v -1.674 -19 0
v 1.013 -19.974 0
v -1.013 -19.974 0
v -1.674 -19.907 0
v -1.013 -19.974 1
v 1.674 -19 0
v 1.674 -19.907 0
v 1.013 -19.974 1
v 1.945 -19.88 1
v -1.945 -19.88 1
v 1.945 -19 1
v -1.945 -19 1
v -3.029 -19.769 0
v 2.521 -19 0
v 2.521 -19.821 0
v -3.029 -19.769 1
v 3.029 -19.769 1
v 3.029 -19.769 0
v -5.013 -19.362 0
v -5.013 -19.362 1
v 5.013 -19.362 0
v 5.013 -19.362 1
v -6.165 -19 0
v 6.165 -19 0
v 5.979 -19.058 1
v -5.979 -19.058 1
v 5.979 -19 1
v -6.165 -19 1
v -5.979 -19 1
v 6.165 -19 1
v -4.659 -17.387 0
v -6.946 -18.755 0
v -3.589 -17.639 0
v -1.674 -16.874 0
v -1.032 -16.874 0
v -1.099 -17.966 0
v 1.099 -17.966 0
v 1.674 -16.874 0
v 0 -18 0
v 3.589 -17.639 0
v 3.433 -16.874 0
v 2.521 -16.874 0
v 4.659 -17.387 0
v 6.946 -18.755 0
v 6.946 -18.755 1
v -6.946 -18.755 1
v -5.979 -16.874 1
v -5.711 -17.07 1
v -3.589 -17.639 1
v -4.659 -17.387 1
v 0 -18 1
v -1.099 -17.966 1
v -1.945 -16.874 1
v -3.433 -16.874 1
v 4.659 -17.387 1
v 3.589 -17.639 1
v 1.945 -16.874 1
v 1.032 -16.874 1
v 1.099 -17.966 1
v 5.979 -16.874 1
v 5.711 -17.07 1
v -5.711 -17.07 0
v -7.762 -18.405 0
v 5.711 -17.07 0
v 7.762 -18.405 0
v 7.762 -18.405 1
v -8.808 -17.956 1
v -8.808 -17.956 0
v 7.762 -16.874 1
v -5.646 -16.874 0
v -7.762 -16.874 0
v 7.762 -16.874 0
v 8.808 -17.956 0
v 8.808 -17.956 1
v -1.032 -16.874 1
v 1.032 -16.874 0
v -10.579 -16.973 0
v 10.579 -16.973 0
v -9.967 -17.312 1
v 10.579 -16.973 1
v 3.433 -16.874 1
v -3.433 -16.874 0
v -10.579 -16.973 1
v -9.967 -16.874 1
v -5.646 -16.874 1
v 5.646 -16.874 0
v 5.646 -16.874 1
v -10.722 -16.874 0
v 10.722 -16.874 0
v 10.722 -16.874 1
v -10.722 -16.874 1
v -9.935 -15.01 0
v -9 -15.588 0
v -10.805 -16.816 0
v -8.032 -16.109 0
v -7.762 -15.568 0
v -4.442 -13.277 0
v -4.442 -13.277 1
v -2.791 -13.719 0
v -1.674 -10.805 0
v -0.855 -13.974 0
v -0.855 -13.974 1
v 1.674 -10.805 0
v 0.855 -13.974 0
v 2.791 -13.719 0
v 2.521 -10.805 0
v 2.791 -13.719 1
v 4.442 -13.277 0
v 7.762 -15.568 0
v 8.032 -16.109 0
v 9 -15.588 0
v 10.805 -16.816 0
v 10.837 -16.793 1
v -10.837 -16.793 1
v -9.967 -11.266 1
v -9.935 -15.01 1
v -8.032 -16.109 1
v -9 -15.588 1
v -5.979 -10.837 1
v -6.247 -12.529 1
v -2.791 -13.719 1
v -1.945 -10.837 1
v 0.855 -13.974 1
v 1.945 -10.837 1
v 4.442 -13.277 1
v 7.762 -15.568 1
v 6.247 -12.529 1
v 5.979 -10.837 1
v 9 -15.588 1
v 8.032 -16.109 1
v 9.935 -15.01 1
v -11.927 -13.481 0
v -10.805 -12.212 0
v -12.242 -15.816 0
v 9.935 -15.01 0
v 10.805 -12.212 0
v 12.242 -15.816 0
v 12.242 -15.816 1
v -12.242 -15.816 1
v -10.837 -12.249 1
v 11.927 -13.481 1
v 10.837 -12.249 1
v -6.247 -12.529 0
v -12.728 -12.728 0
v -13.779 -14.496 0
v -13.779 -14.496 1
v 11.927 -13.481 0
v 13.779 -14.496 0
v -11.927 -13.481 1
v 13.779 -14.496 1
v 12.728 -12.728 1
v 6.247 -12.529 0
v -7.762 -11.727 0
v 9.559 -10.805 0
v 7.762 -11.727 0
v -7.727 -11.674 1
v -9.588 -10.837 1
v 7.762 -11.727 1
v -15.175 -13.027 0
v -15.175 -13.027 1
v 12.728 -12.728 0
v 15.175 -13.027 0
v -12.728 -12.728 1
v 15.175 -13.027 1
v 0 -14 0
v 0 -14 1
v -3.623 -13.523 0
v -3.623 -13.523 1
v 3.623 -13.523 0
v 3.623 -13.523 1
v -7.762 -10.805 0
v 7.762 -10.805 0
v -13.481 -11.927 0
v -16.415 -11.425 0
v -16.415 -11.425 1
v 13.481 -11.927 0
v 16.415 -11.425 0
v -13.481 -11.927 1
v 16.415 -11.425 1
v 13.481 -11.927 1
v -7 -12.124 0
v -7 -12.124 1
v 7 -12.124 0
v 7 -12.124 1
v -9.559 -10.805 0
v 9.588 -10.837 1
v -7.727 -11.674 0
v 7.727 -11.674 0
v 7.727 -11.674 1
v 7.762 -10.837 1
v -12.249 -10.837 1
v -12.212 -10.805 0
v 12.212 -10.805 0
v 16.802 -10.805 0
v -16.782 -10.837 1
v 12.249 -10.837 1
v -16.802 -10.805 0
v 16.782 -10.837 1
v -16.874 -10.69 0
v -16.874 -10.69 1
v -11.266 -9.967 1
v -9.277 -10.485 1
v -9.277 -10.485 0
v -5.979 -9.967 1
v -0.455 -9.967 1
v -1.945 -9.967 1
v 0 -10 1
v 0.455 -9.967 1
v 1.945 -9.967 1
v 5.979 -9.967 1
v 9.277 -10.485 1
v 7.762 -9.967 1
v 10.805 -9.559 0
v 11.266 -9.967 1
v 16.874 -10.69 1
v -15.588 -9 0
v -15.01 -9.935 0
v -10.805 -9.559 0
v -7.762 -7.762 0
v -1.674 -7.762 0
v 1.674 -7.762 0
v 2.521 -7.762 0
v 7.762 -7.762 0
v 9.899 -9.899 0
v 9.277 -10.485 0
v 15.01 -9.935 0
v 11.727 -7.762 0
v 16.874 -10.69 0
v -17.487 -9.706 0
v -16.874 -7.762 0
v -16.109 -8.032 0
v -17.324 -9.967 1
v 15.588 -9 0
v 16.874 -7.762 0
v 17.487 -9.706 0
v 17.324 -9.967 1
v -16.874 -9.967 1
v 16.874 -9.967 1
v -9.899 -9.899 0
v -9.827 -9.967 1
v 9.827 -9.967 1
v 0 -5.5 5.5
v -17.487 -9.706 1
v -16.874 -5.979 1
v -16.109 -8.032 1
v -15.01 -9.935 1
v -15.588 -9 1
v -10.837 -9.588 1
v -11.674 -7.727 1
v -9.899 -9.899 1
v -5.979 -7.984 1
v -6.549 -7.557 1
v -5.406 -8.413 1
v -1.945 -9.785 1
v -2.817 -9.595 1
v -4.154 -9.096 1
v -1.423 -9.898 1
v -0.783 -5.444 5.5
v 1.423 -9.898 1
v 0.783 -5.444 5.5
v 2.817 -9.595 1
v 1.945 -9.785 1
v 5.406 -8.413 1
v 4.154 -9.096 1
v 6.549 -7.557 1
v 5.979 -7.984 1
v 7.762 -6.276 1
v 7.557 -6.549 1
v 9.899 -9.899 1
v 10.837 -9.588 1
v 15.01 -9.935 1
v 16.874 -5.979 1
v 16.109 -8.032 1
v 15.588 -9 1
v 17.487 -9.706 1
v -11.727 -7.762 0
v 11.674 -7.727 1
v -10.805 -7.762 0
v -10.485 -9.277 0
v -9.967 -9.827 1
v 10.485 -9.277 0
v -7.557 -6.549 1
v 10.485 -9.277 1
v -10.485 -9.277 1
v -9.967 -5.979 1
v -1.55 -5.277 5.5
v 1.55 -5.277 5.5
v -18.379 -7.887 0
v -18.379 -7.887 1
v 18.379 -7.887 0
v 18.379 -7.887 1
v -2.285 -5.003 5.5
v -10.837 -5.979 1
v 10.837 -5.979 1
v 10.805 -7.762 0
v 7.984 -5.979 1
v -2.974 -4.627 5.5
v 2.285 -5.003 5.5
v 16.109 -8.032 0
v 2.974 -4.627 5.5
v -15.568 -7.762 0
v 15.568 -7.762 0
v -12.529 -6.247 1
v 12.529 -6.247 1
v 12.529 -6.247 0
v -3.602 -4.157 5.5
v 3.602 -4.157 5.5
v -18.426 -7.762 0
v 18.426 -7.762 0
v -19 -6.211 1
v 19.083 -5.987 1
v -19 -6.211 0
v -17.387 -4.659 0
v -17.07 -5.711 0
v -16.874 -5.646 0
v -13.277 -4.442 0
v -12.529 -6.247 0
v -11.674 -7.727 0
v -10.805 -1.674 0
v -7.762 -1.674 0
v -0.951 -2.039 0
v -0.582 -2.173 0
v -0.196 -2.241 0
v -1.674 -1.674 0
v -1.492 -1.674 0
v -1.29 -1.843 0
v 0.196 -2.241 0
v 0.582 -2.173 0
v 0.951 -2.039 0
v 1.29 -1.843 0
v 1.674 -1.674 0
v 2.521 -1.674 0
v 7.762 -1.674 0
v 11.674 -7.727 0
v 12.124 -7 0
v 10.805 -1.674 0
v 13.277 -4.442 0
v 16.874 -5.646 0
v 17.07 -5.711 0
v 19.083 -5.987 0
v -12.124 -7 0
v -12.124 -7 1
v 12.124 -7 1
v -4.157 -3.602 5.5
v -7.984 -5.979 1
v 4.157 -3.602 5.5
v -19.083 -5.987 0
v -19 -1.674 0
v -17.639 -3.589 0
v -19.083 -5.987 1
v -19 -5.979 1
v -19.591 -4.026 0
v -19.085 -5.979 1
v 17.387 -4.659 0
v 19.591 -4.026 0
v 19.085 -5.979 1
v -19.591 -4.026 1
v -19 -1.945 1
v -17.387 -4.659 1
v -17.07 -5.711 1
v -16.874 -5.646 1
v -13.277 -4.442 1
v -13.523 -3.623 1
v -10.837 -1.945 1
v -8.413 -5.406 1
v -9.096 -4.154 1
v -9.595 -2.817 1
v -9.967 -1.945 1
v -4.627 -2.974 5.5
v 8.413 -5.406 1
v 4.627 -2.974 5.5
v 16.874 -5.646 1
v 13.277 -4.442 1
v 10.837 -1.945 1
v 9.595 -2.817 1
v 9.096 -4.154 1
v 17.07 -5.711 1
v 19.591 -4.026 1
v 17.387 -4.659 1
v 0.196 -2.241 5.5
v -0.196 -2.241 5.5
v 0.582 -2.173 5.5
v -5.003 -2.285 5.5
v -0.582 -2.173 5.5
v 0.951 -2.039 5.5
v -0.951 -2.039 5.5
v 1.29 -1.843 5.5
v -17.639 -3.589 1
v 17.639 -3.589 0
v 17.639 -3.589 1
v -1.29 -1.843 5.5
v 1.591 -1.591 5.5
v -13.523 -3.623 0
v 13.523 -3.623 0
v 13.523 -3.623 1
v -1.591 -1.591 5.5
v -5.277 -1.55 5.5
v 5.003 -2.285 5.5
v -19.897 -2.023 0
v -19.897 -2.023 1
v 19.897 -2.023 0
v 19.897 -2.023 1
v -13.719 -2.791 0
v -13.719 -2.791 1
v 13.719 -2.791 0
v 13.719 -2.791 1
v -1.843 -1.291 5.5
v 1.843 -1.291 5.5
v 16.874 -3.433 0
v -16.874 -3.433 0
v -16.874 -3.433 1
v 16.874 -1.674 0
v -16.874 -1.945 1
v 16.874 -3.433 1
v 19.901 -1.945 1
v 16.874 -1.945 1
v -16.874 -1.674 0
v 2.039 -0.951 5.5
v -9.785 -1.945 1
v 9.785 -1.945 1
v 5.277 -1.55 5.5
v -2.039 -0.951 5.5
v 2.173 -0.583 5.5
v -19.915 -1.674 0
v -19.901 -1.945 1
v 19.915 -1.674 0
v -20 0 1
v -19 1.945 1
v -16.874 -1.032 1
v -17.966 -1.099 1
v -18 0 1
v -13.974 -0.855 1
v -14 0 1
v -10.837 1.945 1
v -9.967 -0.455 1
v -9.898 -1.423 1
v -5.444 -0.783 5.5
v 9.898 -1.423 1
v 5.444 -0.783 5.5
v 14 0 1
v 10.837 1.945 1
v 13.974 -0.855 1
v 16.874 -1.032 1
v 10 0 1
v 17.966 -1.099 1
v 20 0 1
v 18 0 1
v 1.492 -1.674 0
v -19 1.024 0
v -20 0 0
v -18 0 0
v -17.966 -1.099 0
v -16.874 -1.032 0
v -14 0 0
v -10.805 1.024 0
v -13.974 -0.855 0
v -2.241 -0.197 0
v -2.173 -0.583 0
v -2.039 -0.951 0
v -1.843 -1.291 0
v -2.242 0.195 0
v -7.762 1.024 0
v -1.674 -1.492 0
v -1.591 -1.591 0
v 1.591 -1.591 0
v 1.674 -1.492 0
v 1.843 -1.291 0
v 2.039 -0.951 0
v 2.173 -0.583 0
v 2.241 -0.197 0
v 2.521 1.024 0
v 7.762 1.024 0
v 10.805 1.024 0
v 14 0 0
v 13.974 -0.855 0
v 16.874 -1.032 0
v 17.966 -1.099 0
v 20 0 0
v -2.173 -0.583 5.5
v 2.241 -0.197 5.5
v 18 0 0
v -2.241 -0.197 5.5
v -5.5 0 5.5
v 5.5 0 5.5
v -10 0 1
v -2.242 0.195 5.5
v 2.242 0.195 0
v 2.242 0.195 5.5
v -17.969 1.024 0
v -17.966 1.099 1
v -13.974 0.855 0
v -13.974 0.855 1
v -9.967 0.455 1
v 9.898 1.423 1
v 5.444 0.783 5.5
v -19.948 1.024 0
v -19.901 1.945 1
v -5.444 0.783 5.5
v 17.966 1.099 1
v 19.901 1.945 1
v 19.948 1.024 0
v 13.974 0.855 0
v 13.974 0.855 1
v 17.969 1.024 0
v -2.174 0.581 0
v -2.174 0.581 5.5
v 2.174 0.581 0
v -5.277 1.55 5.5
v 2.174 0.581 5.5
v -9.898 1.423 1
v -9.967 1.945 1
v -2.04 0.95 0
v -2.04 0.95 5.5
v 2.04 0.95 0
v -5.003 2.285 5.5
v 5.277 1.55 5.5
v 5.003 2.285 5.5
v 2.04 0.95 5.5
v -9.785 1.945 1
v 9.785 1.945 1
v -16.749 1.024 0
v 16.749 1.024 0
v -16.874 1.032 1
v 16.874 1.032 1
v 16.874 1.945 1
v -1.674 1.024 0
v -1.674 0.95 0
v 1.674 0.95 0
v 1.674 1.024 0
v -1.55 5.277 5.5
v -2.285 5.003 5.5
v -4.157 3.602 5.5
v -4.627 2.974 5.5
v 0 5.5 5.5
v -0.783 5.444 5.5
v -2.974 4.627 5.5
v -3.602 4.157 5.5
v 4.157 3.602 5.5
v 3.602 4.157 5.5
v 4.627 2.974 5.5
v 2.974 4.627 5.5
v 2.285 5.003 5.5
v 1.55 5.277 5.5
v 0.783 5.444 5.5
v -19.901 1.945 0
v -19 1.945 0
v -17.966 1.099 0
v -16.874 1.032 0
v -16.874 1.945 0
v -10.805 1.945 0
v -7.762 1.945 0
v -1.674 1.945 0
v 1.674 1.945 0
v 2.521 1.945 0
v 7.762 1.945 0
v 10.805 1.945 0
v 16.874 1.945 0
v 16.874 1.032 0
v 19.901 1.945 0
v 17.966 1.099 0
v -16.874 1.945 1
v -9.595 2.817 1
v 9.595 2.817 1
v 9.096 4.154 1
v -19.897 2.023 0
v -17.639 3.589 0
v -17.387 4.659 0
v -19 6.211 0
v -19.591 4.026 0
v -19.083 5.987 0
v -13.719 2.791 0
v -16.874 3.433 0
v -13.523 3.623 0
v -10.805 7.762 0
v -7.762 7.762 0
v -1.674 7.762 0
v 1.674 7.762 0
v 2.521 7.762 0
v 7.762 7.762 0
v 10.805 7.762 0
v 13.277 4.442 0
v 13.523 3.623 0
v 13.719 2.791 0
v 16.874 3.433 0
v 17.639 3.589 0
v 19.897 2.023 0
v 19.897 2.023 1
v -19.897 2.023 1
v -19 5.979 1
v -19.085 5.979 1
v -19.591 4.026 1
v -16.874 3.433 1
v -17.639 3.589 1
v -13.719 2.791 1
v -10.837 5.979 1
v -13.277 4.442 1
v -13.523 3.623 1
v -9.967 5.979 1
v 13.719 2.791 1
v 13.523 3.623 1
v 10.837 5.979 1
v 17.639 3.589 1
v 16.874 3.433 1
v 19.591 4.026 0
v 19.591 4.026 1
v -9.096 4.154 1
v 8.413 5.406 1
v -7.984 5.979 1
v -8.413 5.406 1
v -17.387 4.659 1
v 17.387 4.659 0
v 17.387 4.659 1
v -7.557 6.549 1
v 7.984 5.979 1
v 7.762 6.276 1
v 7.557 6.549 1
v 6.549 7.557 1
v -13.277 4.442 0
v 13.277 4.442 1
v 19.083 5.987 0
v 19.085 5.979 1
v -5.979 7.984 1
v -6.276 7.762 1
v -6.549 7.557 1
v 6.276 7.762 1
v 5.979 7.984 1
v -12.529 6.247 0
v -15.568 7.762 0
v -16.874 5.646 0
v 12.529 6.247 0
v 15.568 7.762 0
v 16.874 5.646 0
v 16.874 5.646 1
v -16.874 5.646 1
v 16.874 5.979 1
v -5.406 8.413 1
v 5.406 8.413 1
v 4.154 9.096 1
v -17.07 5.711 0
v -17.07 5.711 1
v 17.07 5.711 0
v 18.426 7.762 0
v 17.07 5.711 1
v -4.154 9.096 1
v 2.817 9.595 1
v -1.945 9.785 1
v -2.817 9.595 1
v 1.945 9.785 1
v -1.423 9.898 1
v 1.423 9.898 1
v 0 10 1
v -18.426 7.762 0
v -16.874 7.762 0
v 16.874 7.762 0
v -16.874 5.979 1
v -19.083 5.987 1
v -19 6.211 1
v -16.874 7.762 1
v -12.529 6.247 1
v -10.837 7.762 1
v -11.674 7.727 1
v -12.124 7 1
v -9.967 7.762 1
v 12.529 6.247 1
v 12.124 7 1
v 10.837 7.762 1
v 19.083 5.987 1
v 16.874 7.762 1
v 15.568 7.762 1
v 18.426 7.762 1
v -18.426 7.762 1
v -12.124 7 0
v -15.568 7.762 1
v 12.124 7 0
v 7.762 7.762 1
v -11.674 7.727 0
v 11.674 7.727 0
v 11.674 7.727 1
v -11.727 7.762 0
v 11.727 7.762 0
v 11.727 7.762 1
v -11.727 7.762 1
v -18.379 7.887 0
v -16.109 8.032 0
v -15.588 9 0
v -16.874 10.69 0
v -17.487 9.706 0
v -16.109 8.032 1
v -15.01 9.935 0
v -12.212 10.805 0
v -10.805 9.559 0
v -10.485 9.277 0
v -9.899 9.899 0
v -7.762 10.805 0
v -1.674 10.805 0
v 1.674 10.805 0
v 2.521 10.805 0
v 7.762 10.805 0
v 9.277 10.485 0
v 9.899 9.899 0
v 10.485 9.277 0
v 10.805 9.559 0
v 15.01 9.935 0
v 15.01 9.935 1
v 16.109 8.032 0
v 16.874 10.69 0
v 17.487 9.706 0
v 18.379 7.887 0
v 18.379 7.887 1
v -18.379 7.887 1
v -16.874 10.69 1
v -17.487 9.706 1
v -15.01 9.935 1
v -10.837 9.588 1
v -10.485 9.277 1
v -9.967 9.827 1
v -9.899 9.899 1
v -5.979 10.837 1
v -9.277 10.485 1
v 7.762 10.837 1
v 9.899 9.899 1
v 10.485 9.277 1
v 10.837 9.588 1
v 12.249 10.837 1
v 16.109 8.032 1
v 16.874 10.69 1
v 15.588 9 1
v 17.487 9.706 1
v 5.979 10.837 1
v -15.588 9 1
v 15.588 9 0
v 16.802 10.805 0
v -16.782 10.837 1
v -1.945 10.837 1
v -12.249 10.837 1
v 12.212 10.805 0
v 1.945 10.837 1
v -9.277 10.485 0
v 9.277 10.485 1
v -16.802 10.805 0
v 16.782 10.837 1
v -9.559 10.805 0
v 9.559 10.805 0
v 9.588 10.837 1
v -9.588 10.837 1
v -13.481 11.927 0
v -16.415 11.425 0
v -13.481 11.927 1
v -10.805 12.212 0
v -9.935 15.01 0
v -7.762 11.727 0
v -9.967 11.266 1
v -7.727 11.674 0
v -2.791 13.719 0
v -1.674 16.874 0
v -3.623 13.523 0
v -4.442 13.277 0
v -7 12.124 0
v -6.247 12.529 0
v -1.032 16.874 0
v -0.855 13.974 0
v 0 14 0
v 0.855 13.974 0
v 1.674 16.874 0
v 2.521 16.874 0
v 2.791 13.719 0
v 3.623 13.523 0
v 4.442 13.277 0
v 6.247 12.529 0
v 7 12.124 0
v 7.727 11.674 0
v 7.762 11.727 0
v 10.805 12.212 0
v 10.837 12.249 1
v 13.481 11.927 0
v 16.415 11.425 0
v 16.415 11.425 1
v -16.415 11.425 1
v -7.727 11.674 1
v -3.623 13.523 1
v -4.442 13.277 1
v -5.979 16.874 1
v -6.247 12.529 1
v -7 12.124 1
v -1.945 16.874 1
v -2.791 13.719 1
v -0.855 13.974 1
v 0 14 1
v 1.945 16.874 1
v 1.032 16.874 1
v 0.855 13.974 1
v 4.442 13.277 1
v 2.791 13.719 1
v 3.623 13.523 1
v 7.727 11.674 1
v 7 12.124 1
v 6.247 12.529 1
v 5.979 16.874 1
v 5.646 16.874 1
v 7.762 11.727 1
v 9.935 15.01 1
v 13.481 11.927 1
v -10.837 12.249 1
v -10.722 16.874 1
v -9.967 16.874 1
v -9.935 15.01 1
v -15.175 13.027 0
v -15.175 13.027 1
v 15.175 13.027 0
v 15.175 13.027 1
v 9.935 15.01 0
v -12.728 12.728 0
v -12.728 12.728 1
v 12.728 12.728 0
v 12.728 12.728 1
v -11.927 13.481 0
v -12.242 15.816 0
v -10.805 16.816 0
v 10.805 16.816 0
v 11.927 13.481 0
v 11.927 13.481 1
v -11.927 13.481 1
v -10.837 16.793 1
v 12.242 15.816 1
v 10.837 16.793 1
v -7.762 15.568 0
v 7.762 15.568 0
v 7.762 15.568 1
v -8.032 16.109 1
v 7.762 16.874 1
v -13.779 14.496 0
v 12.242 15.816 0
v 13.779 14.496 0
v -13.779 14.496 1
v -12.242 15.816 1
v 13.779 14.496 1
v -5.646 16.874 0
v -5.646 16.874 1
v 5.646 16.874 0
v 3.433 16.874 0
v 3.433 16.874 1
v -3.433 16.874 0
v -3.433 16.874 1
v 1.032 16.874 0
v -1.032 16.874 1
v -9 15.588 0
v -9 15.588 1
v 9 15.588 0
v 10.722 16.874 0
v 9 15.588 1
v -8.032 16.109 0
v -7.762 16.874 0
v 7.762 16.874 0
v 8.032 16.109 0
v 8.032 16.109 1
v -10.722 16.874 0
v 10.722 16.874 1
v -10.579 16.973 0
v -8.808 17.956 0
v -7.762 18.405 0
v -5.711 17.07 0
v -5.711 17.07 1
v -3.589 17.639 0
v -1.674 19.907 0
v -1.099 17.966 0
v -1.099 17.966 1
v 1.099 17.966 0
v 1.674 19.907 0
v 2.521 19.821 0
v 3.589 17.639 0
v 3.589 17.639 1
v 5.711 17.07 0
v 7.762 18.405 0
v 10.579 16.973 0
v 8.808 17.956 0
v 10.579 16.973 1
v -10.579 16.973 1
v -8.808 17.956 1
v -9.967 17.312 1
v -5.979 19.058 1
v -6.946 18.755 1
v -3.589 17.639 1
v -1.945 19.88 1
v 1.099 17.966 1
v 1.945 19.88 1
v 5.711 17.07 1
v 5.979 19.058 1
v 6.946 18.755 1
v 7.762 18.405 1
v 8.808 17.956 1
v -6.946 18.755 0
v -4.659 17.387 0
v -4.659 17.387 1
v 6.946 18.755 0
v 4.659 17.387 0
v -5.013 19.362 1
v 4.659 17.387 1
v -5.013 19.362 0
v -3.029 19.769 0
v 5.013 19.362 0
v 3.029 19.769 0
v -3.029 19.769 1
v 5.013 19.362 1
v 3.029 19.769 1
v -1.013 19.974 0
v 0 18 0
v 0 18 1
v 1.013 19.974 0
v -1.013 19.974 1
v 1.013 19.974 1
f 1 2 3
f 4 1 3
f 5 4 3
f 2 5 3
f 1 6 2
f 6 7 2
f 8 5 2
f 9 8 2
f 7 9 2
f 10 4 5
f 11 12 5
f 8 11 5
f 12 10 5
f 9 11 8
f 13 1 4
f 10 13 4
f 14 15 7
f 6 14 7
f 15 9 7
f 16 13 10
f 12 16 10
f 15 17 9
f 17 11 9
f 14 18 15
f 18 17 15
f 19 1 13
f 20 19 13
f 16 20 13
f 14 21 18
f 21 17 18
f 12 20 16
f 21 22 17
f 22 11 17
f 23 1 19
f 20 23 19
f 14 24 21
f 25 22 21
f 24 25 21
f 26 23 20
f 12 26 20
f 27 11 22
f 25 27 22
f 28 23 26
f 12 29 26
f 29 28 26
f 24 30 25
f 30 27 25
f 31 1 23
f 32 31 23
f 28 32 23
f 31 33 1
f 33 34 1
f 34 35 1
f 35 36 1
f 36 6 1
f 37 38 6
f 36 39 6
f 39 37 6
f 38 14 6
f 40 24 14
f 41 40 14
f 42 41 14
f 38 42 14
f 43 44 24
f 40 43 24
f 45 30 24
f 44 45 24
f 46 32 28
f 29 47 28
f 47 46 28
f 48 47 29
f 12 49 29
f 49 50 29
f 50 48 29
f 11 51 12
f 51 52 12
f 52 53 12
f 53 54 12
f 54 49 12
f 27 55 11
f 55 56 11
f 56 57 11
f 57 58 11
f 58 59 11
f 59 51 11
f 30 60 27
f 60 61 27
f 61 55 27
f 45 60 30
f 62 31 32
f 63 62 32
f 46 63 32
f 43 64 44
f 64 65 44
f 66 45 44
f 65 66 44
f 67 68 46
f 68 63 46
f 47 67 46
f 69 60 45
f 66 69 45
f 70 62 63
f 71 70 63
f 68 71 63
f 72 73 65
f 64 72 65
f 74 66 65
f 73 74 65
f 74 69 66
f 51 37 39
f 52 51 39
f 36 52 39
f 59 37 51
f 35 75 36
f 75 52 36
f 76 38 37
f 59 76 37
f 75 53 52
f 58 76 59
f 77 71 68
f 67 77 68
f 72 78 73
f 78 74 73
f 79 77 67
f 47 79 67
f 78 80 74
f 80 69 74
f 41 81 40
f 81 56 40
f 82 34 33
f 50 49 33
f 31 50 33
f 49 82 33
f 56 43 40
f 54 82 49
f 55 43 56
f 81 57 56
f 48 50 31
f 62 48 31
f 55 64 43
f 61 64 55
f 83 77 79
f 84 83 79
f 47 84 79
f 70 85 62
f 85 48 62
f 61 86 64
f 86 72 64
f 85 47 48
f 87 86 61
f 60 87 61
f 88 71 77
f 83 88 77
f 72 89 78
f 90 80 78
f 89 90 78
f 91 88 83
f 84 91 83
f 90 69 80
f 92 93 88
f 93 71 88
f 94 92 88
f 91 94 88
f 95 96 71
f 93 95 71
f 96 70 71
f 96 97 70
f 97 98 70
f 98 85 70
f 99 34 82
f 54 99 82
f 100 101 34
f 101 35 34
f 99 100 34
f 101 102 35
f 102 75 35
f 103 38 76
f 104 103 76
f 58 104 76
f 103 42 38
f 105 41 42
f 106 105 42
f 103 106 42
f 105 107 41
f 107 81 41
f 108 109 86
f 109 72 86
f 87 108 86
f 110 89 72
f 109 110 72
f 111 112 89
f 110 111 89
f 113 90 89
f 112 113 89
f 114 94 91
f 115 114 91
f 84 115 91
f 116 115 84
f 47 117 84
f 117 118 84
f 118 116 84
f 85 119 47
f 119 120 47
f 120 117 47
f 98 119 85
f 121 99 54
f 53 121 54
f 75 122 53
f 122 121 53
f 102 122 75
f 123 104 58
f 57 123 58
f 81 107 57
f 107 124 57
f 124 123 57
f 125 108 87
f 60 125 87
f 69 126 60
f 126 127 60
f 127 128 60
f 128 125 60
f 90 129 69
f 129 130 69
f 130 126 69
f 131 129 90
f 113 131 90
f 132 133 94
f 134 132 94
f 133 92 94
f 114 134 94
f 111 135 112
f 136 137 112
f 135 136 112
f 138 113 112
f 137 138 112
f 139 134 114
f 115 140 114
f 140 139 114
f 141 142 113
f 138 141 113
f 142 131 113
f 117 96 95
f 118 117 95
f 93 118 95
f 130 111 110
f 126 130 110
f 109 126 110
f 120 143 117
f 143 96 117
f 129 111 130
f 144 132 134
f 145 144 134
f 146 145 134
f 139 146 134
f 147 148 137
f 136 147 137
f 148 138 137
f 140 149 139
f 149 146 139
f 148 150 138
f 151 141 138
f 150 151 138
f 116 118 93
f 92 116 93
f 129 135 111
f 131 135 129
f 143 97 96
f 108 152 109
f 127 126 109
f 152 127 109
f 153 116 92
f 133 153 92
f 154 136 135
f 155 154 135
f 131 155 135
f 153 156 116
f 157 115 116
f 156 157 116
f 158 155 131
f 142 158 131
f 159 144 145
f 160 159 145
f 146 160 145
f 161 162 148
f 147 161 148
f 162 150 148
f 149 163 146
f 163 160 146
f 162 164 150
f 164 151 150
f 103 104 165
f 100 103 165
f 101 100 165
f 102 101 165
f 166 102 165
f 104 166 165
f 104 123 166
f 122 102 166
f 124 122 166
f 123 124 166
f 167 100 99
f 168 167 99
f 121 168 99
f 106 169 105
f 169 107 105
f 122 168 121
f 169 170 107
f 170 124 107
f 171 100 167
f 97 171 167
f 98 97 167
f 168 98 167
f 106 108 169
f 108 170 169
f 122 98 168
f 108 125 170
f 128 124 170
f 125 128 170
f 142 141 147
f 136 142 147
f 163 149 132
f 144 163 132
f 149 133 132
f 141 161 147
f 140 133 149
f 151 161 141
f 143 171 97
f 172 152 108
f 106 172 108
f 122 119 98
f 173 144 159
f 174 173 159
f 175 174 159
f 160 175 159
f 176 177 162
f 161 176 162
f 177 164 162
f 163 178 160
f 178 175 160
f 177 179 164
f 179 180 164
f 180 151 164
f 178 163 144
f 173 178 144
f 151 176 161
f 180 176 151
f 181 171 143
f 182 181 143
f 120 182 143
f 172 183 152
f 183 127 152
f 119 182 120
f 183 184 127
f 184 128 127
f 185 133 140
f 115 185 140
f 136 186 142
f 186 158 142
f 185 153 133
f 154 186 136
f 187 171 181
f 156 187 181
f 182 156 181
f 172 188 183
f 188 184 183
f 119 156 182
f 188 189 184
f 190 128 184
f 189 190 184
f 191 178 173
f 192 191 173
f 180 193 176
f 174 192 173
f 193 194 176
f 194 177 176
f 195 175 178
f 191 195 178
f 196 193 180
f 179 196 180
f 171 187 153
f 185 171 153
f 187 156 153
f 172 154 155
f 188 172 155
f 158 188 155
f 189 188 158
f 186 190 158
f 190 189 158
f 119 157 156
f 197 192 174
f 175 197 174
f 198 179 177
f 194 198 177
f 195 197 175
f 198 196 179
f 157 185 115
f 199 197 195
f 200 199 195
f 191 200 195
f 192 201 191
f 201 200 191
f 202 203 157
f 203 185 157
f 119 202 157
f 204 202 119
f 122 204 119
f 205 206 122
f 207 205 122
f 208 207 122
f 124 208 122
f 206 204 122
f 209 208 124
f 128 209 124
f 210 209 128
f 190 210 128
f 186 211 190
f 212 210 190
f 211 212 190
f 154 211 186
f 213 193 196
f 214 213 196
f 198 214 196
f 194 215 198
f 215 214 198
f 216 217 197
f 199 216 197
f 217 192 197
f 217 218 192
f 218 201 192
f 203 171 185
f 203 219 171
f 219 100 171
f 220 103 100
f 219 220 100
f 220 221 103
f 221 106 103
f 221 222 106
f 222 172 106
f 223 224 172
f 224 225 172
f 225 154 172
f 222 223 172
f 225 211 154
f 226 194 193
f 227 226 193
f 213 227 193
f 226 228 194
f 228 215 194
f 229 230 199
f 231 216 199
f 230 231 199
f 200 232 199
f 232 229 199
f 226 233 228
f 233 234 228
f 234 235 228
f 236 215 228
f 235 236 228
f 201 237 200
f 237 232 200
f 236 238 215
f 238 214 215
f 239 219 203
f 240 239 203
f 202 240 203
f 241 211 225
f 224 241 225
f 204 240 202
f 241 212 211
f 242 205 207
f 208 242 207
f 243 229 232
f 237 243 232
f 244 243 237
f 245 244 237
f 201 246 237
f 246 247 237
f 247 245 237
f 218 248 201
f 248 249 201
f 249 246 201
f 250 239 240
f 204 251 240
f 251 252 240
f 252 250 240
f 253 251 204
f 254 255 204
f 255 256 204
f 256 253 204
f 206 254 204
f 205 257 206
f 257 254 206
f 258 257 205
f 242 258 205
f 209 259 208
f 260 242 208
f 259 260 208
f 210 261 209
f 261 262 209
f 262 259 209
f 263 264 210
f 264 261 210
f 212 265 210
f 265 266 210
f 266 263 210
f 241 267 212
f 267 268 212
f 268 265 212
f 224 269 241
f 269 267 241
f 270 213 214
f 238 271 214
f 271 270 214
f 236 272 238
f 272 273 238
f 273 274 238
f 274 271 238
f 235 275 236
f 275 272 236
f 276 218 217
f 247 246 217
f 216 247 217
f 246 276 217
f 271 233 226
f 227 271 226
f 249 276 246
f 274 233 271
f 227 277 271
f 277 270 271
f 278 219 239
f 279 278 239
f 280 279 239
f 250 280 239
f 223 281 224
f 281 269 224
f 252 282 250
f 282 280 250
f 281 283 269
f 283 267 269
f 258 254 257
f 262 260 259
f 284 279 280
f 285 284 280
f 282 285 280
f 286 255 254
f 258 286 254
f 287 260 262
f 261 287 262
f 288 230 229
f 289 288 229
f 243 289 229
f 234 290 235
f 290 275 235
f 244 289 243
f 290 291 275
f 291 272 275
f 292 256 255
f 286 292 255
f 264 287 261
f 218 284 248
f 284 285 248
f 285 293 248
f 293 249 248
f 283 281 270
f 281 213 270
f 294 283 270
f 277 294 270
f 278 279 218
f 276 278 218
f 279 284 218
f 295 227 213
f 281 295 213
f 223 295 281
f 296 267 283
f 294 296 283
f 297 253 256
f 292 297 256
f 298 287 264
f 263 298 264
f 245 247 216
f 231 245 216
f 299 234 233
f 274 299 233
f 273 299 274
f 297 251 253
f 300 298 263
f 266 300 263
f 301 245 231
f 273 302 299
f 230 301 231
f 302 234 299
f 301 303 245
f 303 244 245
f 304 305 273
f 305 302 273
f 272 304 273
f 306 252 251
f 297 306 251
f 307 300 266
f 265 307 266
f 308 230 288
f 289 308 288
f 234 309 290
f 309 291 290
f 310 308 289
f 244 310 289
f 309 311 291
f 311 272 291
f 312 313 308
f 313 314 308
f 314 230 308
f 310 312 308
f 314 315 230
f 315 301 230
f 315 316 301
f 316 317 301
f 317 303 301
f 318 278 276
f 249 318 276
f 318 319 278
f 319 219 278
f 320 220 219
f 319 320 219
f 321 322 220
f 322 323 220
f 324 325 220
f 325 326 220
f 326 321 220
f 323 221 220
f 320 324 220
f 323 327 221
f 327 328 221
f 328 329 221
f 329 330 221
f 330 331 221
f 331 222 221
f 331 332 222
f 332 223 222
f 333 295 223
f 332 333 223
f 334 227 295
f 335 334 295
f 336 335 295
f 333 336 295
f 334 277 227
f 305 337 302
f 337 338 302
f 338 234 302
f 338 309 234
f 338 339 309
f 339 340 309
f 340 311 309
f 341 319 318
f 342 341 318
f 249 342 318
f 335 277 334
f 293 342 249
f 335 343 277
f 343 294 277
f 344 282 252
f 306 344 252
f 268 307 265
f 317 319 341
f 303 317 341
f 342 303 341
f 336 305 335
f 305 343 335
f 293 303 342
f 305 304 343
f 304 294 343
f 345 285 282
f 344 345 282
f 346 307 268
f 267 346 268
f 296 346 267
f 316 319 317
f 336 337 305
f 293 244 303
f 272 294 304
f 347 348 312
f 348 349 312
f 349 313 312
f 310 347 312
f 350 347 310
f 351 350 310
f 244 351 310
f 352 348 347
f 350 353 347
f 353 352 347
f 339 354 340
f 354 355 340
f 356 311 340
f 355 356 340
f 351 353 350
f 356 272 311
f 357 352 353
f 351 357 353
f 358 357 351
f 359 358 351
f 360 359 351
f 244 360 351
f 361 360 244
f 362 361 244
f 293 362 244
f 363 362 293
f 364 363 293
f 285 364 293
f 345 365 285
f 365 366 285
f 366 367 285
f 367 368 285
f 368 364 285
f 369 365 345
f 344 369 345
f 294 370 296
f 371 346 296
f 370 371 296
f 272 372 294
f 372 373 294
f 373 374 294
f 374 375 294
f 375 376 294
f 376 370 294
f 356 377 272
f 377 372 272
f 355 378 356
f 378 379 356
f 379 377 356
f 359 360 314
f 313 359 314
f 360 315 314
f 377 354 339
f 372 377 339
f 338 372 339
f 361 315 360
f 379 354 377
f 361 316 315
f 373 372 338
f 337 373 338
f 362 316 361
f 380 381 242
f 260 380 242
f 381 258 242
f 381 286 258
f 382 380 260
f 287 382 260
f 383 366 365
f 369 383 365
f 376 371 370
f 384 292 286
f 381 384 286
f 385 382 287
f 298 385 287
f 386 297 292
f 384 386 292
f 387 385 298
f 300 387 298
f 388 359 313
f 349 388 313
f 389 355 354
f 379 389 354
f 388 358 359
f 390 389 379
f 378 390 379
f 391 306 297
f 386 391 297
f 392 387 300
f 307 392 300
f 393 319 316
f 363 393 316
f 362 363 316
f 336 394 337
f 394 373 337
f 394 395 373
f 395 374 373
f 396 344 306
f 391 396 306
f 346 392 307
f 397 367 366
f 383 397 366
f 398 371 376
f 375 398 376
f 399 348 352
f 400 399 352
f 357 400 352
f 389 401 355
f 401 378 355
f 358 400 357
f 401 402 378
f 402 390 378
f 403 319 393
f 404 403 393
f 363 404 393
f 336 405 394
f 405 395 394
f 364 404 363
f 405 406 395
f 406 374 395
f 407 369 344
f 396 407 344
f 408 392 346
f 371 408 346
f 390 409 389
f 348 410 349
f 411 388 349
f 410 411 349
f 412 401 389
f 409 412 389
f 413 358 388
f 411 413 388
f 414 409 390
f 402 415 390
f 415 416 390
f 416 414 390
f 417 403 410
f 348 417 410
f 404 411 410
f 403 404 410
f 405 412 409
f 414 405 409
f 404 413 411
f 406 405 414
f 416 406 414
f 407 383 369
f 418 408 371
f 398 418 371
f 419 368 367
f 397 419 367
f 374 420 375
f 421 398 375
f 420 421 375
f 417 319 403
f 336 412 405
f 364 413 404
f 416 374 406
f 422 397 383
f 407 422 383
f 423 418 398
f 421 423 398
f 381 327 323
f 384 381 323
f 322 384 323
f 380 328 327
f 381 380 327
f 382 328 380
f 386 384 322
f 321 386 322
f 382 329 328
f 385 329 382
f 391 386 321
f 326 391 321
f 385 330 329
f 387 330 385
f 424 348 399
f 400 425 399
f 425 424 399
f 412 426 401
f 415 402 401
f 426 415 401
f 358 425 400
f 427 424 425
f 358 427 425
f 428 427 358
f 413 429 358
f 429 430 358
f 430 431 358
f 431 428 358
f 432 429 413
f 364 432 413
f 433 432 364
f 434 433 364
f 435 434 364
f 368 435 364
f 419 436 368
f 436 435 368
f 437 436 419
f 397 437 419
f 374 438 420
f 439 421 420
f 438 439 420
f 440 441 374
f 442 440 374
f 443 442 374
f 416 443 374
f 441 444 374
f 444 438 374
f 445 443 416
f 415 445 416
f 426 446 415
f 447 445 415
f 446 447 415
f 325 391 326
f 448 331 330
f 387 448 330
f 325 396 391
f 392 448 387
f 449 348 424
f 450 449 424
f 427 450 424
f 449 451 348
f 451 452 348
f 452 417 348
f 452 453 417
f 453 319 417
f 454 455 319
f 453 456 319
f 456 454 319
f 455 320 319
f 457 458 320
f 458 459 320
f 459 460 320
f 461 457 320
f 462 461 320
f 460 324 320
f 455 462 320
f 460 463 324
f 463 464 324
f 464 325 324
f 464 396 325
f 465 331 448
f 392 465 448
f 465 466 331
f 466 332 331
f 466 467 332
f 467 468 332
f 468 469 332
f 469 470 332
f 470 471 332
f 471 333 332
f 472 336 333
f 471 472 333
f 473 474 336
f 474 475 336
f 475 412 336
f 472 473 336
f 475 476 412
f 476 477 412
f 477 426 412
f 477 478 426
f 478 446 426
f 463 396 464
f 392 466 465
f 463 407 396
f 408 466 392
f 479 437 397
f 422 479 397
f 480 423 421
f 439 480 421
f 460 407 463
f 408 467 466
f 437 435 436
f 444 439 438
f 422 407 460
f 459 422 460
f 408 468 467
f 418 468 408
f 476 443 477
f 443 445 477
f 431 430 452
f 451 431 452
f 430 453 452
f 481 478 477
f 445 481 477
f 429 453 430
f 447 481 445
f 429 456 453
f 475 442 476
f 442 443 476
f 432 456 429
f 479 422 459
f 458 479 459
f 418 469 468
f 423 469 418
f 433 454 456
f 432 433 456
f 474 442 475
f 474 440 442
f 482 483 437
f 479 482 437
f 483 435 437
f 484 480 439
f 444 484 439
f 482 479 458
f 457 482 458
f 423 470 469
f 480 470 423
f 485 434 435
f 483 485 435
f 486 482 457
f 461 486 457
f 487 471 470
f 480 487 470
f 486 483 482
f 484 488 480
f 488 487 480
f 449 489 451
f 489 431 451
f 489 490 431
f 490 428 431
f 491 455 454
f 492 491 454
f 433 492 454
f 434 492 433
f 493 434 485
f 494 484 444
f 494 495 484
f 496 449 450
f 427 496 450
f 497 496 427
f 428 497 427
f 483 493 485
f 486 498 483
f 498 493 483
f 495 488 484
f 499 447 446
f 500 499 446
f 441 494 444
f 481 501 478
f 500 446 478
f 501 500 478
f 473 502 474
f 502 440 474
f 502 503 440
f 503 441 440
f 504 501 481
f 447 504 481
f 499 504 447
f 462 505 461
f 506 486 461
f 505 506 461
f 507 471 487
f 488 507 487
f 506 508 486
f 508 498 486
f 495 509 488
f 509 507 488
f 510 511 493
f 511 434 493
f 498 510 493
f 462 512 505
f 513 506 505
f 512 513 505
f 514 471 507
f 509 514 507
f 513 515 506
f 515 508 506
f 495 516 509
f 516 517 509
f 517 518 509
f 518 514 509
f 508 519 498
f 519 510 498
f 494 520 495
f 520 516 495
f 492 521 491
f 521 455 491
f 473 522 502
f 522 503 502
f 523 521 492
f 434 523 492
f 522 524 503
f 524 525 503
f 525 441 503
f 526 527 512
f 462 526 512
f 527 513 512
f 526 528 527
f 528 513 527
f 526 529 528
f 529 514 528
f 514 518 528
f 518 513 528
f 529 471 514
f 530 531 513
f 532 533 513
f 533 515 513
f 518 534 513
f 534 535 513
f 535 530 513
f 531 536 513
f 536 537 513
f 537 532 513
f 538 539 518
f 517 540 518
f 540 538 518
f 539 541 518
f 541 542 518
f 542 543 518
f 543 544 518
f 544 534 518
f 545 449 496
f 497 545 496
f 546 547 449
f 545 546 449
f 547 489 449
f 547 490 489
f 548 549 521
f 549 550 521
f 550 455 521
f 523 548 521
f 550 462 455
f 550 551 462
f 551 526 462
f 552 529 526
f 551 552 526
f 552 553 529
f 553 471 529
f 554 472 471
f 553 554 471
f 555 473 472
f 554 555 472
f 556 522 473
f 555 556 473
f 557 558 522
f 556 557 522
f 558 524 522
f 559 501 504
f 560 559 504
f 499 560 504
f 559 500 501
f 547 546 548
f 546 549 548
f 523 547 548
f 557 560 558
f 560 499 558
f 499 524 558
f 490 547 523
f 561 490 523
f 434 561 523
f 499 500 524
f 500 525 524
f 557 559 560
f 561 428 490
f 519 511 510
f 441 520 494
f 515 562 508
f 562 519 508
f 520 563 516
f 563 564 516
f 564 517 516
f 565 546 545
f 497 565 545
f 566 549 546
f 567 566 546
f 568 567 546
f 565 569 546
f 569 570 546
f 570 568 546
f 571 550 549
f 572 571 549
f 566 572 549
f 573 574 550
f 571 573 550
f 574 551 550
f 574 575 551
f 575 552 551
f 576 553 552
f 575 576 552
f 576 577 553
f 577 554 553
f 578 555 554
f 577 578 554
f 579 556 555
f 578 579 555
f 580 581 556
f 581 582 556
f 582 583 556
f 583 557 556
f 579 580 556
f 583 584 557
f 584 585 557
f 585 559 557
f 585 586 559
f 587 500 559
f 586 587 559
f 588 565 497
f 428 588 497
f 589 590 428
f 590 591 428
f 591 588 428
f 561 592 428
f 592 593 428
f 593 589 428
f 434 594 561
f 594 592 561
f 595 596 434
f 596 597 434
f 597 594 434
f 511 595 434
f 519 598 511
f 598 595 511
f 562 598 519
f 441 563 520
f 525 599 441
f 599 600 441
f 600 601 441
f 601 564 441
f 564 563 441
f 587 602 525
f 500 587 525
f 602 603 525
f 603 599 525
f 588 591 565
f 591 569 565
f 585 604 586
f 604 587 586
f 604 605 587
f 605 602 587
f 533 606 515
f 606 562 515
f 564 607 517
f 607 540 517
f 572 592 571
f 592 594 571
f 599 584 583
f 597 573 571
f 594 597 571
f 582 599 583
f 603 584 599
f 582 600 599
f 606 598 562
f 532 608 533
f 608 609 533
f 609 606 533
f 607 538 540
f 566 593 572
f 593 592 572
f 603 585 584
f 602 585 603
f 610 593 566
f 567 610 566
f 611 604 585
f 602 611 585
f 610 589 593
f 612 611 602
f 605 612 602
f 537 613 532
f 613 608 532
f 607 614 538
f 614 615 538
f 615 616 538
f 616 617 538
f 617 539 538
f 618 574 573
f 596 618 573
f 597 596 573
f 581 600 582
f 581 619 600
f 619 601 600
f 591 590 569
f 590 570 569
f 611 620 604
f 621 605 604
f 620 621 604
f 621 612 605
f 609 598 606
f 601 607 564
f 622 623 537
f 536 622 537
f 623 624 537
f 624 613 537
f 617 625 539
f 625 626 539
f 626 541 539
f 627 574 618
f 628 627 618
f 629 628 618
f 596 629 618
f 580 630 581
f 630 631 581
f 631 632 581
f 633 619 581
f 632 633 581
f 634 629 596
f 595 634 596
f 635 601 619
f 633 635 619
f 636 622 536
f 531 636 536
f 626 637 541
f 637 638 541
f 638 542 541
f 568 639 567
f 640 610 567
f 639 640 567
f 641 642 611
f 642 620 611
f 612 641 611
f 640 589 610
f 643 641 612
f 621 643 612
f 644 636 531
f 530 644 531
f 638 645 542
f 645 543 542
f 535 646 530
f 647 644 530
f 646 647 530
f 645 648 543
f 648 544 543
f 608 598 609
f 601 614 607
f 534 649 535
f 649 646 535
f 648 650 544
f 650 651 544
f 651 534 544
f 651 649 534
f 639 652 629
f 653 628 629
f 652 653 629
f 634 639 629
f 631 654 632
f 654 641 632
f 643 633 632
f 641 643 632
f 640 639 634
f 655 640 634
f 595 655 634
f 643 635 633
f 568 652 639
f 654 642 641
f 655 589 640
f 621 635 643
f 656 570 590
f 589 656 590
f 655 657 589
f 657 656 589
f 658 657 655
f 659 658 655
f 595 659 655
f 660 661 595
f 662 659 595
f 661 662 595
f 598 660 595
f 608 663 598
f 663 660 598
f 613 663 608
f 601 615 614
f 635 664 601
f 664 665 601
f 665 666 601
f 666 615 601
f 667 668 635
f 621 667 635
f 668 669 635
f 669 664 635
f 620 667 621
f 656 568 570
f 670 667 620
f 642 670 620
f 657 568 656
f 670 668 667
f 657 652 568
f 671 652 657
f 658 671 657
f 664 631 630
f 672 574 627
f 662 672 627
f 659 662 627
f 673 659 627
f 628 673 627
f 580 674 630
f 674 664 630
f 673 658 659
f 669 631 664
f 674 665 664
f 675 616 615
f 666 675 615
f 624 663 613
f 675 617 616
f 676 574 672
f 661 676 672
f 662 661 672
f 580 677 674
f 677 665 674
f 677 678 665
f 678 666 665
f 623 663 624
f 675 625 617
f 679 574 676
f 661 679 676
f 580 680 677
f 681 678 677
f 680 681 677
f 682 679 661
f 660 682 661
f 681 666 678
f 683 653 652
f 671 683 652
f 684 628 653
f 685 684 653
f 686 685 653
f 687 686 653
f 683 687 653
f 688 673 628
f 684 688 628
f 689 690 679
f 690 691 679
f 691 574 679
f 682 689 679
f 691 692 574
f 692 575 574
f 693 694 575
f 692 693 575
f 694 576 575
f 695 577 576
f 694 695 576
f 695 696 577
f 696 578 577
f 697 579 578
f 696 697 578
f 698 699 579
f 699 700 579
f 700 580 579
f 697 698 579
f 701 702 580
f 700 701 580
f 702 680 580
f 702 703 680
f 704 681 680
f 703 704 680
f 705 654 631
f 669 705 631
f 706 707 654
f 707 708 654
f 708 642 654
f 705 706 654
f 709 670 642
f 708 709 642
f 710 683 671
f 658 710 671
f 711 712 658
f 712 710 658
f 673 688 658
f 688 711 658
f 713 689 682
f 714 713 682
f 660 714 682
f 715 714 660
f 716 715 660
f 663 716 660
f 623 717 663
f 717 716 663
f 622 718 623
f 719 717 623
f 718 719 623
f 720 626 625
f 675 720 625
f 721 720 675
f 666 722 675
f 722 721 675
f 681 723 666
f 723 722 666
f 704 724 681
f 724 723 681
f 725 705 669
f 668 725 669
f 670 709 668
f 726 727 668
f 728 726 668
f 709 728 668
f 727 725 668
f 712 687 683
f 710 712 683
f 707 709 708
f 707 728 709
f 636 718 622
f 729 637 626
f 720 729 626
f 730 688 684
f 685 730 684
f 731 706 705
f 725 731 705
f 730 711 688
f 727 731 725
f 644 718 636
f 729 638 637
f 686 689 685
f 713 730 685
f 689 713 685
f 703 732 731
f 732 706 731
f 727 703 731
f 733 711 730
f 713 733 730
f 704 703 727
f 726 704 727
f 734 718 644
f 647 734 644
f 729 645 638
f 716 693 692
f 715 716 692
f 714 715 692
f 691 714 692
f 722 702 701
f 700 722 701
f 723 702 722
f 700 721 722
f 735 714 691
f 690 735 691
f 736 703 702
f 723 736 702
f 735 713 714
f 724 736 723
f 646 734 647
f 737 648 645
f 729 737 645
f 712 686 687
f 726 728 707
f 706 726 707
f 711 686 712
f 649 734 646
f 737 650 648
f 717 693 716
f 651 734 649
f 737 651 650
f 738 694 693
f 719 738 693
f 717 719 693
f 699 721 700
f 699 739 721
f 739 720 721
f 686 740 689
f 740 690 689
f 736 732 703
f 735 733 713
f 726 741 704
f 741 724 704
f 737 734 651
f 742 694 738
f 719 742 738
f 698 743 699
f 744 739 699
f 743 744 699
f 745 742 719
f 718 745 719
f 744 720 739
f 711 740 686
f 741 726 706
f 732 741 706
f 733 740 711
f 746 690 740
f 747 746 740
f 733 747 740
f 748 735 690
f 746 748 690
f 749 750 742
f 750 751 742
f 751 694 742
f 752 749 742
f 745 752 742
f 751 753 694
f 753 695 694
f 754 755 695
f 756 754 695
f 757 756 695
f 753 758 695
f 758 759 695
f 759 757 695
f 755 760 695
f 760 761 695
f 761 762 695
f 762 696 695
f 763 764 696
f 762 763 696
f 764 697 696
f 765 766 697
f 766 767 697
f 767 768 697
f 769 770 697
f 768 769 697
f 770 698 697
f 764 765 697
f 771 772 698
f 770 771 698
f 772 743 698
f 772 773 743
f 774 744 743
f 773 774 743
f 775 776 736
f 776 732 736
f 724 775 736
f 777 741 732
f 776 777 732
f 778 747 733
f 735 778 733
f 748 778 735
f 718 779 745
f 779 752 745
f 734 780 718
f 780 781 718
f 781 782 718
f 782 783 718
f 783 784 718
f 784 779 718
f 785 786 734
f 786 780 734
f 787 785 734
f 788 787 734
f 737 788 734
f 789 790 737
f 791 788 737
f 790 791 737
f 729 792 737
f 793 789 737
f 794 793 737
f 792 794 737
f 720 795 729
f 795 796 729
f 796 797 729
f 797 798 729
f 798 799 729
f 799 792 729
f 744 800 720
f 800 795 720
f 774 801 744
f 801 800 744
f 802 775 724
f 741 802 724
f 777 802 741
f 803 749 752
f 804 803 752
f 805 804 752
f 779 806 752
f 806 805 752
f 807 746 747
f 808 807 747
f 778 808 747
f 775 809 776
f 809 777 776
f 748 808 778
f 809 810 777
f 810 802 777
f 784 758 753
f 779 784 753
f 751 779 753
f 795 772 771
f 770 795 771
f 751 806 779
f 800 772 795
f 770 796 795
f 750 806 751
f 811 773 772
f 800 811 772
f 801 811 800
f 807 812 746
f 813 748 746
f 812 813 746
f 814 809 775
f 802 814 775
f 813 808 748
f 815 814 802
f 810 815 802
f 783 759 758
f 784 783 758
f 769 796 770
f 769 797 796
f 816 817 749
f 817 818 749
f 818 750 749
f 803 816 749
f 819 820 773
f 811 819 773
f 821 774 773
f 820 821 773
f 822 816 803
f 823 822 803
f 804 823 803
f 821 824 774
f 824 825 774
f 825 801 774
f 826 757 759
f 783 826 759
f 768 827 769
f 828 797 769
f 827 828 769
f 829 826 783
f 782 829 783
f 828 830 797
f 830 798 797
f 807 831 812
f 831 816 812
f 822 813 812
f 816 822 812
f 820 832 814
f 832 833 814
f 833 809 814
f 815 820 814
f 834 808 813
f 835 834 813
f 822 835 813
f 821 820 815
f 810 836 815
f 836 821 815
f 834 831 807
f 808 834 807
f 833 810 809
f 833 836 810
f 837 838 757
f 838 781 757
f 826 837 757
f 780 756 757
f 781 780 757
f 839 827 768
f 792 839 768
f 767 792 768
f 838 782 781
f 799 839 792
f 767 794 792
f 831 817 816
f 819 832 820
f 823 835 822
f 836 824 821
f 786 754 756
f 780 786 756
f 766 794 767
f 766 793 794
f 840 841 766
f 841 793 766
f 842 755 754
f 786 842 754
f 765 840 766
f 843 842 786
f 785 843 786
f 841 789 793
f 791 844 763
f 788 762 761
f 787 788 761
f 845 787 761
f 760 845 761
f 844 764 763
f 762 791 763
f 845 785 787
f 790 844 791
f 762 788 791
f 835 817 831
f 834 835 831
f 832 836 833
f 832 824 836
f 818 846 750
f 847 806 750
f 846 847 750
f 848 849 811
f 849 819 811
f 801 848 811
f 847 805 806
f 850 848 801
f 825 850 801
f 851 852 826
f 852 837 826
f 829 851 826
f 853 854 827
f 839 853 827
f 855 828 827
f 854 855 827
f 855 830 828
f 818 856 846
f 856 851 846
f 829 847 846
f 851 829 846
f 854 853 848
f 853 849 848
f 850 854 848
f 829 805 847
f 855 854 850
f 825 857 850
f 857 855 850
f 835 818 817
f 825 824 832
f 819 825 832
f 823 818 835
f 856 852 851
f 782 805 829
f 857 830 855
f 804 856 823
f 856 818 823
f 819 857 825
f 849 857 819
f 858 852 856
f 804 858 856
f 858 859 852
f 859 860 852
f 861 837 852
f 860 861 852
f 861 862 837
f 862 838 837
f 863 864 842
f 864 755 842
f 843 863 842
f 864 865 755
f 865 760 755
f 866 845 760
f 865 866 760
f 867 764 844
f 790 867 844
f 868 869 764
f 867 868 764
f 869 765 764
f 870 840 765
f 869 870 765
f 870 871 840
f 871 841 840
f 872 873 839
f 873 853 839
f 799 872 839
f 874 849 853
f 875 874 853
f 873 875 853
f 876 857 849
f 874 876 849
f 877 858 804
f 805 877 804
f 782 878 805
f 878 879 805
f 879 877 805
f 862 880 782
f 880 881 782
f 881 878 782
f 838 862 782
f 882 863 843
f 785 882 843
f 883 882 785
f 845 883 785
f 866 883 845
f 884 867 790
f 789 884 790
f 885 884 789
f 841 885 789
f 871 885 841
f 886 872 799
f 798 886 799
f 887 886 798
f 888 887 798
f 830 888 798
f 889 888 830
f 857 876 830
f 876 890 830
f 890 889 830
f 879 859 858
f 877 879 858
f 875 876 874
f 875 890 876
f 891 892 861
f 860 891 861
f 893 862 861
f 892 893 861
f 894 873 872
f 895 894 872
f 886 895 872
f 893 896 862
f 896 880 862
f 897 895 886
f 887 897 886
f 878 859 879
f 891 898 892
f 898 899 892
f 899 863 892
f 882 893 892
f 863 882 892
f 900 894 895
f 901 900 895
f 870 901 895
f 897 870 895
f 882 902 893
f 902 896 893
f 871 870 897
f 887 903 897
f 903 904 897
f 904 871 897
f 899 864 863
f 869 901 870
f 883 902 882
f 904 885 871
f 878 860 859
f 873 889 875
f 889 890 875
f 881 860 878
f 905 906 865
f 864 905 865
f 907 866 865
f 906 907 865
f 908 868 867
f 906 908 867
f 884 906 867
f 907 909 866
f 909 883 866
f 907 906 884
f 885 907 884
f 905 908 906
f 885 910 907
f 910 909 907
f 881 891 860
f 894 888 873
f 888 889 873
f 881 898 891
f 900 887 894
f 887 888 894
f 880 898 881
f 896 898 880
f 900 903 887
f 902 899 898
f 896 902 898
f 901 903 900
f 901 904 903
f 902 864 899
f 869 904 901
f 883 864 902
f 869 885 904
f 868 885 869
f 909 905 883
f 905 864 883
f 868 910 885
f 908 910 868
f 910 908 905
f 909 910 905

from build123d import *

# Parameters (mm, degrees)
CROQUIS2_R              = 20
SALIENTE_EXTRUIR2_DEPTH = 1
CROQUIS2_5_R            = 5
SALIENTE_EXTRUIR3_DEPTH = 5.5
CHAFL_N1_SIZE           = 5
CORTAR_EXTRUIR1_DEPTH   = 29.814059068


with BuildPart() as part:
    # Croquis2 → Saliente-Extruir2 (new body)
    with BuildSketch(Plane.XY):
        Circle(CROQUIS2_R)
        with BuildLine():
            Line((-2.039607805, 0.95), (2.039607805, 0.95))
            ThreePointArc((2.039607805, 0.95), (0, -2.25), (-2.039607805, 0.95))
        make_face(mode=Mode.SUBTRACT)
        with BuildLine():
            Line((-0.854679553, 13.973887178), (-1.098873712, 17.966426372))
            ThreePointArc((-1.098873712, 17.966426372), (0, 18), (1.098873712, 17.966426372))
            Line((1.098873712, 17.966426372), (0.854679553, 13.973887178))
            ThreePointArc((0.854679553, 13.973887178), (0, 14), (-0.854679553, 13.973887178))
        make_face(mode=Mode.SUBTRACT)
        with BuildLine():
            Line((-3.58862282, 17.638644683), (-2.791151082, 13.718945865))
            ThreePointArc((-2.791151082, 13.718945865), (-3.623466631, 13.522961568), (-4.44226519, 13.276531173))
            Line((-4.44226519, 13.276531173), (-5.711483815, 17.069825794))
            ThreePointArc((-5.711483815, 17.069825794), (-4.658742812, 17.386664873), (-3.58862282, 17.638644683))
        make_face(mode=Mode.SUBTRACT)
        with BuildLine():
            Line((-8.031560636, 16.108818509), (-6.246769384, 12.529081062))
            ThreePointArc((-6.246769384, 12.529081062), (-7, 12.124355653), (-7.727117794, 11.674401509))
            Line((-7.727117794, 11.674401509), (-9.934865736, 15.009944797))
            ThreePointArc((-9.934865736, 15.009944797), (-9, 15.588457268), (-8.031560636, 16.108818509))
        make_face(mode=Mode.SUBTRACT)
        with BuildLine():
            Line((-11.927160868, 13.481202974), (-9.276680675, 10.485380091))
            ThreePointArc((-9.276680675, 10.485380091), (-9.899494937, 9.899494937), (-10.485380091, 9.276680675))
            Line((-10.485380091, 9.276680675), (-13.481202974, 11.927160868))
            ThreePointArc((-13.481202974, 11.927160868), (-12.727922061, 12.727922061), (-11.927160868, 13.481202974))
        make_face(mode=Mode.SUBTRACT)
        with BuildLine():
            Line((-15.009944797, 9.934865736), (-11.674401509, 7.727117794))
            ThreePointArc((-11.674401509, 7.727117794), (-12.124355653, 7), (-12.529081062, 6.246769384))
            Line((-12.529081062, 6.246769384), (-16.108818509, 8.031560636))
            ThreePointArc((-16.108818509, 8.031560636), (-15.588457268, 9), (-15.009944797, 9.934865736))
        make_face(mode=Mode.SUBTRACT)
        with BuildLine():
            Line((-17.069825794, 5.711483815), (-13.276531173, 4.44226519))
            ThreePointArc((-13.276531173, 4.44226519), (-13.522961568, 3.623466631), (-13.718945865, 2.791151082))
            Line((-13.718945865, 2.791151082), (-17.638644683, 3.58862282))
            ThreePointArc((-17.638644683, 3.58862282), (-17.386664873, 4.658742812), (-17.069825794, 5.711483815))
        make_face(mode=Mode.SUBTRACT)
        with BuildLine():
            Line((-17.966426372, 1.098873712), (-13.973887178, 0.854679553))
            ThreePointArc((-13.973887178, 0.854679553), (-14, 0), (-13.973887178, -0.854679553))
            Line((-13.973887178, -0.854679553), (-17.966426372, -1.098873712))
            ThreePointArc((-17.966426372, -1.098873712), (-18, 0), (-17.966426372, 1.098873712))
        make_face(mode=Mode.SUBTRACT)
        with BuildLine():
            Line((-17.638644683, -3.58862282), (-13.718945865, -2.791151082))
            ThreePointArc((-13.718945865, -2.791151082), (-13.522961568, -3.623466631), (-13.276531173, -4.44226519))
            Line((-13.276531173, -4.44226519), (-17.069825794, -5.711483815))
            ThreePointArc((-17.069825794, -5.711483815), (-17.386664873, -4.658742812), (-17.638644683, -3.58862282))
        make_face(mode=Mode.SUBTRACT)
        with BuildLine():
            Line((-16.108818509, -8.031560636), (-12.529081062, -6.246769384))
            ThreePointArc((-12.529081062, -6.246769384), (-12.124355653, -7), (-11.674401509, -7.727117794))
            Line((-11.674401509, -7.727117794), (-15.009944797, -9.934865736))
            ThreePointArc((-15.009944797, -9.934865736), (-15.588457268, -9), (-16.108818509, -8.031560636))
        make_face(mode=Mode.SUBTRACT)
        with BuildLine():
            Line((-13.481202974, -11.927160868), (-10.485380091, -9.276680675))
            ThreePointArc((-10.485380091, -9.276680675), (-9.899494937, -9.899494937), (-9.276680675, -10.485380091))
            Line((-9.276680675, -10.485380091), (-11.927160868, -13.481202974))
            ThreePointArc((-11.927160868, -13.481202974), (-12.727922061, -12.727922061), (-13.481202974, -11.927160868))
        make_face(mode=Mode.SUBTRACT)
        with BuildLine():
            Line((-9.934865736, -15.009944797), (-7.727117794, -11.674401509))
            ThreePointArc((-7.727117794, -11.674401509), (-7, -12.124355653), (-6.246769384, -12.529081062))
            Line((-6.246769384, -12.529081062), (-8.031560636, -16.108818509))
            ThreePointArc((-8.031560636, -16.108818509), (-9, -15.588457268), (-9.934865736, -15.009944797))
        make_face(mode=Mode.SUBTRACT)
        with BuildLine():
            Line((-5.711483815, -17.069825794), (-4.44226519, -13.276531173))
            ThreePointArc((-4.44226519, -13.276531173), (-3.623466631, -13.522961568), (-2.791151082, -13.718945865))
            Line((-2.791151082, -13.718945865), (-3.58862282, -17.638644683))
            ThreePointArc((-3.58862282, -17.638644683), (-4.658742812, -17.386664873), (-5.711483815, -17.069825794))
        make_face(mode=Mode.SUBTRACT)
        with BuildLine():
            Line((-1.098873712, -17.966426372), (-0.854679553, -13.973887178))
            ThreePointArc((-0.854679553, -13.973887178), (0, -14), (0.854679553, -13.973887178))
            Line((0.854679553, -13.973887178), (1.098873712, -17.966426372))
            ThreePointArc((1.098873712, -17.966426372), (0, -18), (-1.098873712, -17.966426372))
        make_face(mode=Mode.SUBTRACT)
        with BuildLine():
            Line((3.58862282, -17.638644683), (2.791151082, -13.718945865))
            ThreePointArc((2.791151082, -13.718945865), (3.623466631, -13.522961568), (4.44226519, -13.276531173))
            Line((4.44226519, -13.276531173), (5.711483815, -17.069825794))
            ThreePointArc((5.711483815, -17.069825794), (4.658742812, -17.386664873), (3.58862282, -17.638644683))
        make_face(mode=Mode.SUBTRACT)
        with BuildLine():
            Line((8.031560636, -16.108818509), (6.246769384, -12.529081062))
            ThreePointArc((6.246769384, -12.529081062), (7, -12.124355653), (7.727117794, -11.674401509))
            Line((7.727117794, -11.674401509), (9.934865736, -15.009944797))
            ThreePointArc((9.934865736, -15.009944797), (9, -15.588457268), (8.031560636, -16.108818509))
        make_face(mode=Mode.SUBTRACT)
        with BuildLine():
            Line((11.927160868, -13.481202974), (9.276680675, -10.485380091))
            ThreePointArc((9.276680675, -10.485380091), (9.899494937, -9.899494937), (10.485380091, -9.276680675))
            Line((10.485380091, -9.276680675), (13.481202974, -11.927160868))
            ThreePointArc((13.481202974, -11.927160868), (12.727922061, -12.727922061), (11.927160868, -13.481202974))
        make_face(mode=Mode.SUBTRACT)
        with BuildLine():
            Line((15.009944797, -9.934865736), (11.674401509, -7.727117794))
            ThreePointArc((11.674401509, -7.727117794), (12.124355653, -7), (12.529081062, -6.246769384))
            Line((12.529081062, -6.246769384), (16.108818509, -8.031560636))
            ThreePointArc((16.108818509, -8.031560636), (15.588457268, -9), (15.009944797, -9.934865736))
        make_face(mode=Mode.SUBTRACT)
        with BuildLine():
            Line((17.069825794, -5.711483815), (13.276531173, -4.44226519))
            ThreePointArc((13.276531173, -4.44226519), (13.522961568, -3.623466631), (13.718945865, -2.791151082))
            Line((13.718945865, -2.791151082), (17.638644683, -3.58862282))
            ThreePointArc((17.638644683, -3.58862282), (17.386664873, -4.658742812), (17.069825794, -5.711483815))
        make_face(mode=Mode.SUBTRACT)
        with BuildLine():
            Line((17.966426372, -1.098873712), (13.973887178, -0.854679553))
            ThreePointArc((13.973887178, -0.854679553), (14, 0), (13.973887178, 0.854679553))
            Line((13.973887178, 0.854679553), (17.966426372, 1.098873712))
            ThreePointArc((17.966426372, 1.098873712), (18, 0), (17.966426372, -1.098873712))
        make_face(mode=Mode.SUBTRACT)
        with BuildLine():
            Line((17.638644683, 3.58862282), (13.718945865, 2.791151082))
            ThreePointArc((13.718945865, 2.791151082), (13.522961568, 3.623466631), (13.276531173, 4.44226519))
            Line((13.276531173, 4.44226519), (17.069825794, 5.711483815))
            ThreePointArc((17.069825794, 5.711483815), (17.386664873, 4.658742812), (17.638644683, 3.58862282))
        make_face(mode=Mode.SUBTRACT)
        with BuildLine():
            Line((16.108818509, 8.031560636), (12.529081062, 6.246769384))
            ThreePointArc((12.529081062, 6.246769384), (12.124355653, 7), (11.674401509, 7.727117794))
            Line((11.674401509, 7.727117794), (15.009944797, 9.934865736))
            ThreePointArc((15.009944797, 9.934865736), (15.588457268, 9), (16.108818509, 8.031560636))
        make_face(mode=Mode.SUBTRACT)
        with BuildLine():
            Line((13.481202974, 11.927160868), (10.485380091, 9.276680675))
            ThreePointArc((10.485380091, 9.276680675), (9.899494937, 9.899494937), (9.276680675, 10.485380091))
            Line((9.276680675, 10.485380091), (11.927160868, 13.481202974))
            ThreePointArc((11.927160868, 13.481202974), (12.727922061, 12.727922061), (13.481202974, 11.927160868))
        make_face(mode=Mode.SUBTRACT)
        with BuildLine():
            Line((9.934865736, 15.009944797), (7.727117794, 11.674401509))
            ThreePointArc((7.727117794, 11.674401509), (7, 12.124355653), (6.246769384, 12.529081062))
            Line((6.246769384, 12.529081062), (8.031560636, 16.108818509))
            ThreePointArc((8.031560636, 16.108818509), (9, 15.588457268), (9.934865736, 15.009944797))
        make_face(mode=Mode.SUBTRACT)
        with BuildLine():
            Line((5.711483815, 17.069825794), (4.44226519, 13.276531173))
            ThreePointArc((4.44226519, 13.276531173), (3.623466631, 13.522961568), (2.791151082, 13.718945865))
            Line((2.791151082, 13.718945865), (3.58862282, 17.638644683))
            ThreePointArc((3.58862282, 17.638644683), (4.658742812, 17.386664873), (5.711483815, 17.069825794))
        make_face(mode=Mode.SUBTRACT)
    extrude(amount=SALIENTE_EXTRUIR2_DEPTH)

    # Croquis2<5> → Saliente-Extruir3 (add)
    with BuildSketch(Plane.XY):
        Circle(CROQUIS2_5_R)
    extrude(amount=SALIENTE_EXTRUIR3_DEPTH)

    # Chaflán1
    # the kernel refuses this chamfer: 5 mm, written as the material it adds along each edge
    with BuildSketch(Plane(origin=(0, 0, 1), x_dir=(1, 0, 0), z_dir=(0, 1, 0))) as chafl_n1_piece_1_section:
        Polygon((5 + CHAFL_N1_SIZE, 0), (5, -CHAFL_N1_SIZE), (5, 0), align=None)
    chafl_n1_piece_1 = revolve(axis=Axis((0, 0, 1), (0, 0, -1)), mode=Mode.PRIVATE)
    chafl_n1_piece_1 = split(chafl_n1_piece_1, bisect_by=Plane(origin=(-7.762197096, 0, 5.5), z_dir=(0, 0, -1)), keep=Keep.TOP, mode=Mode.PRIVATE)
    add(chafl_n1_piece_1)

    # Croquis2<6> → Cortar-Extruir1 (cut, through all)
    with BuildSketch(Plane.XY):
        with BuildLine():
            Line((2.039607805, 0.95), (-2.039607805, 0.95))
            ThreePointArc((-2.039607805, 0.95), (-0.486509218, -2.196772355), (2.25, 0))
            ThreePointArc((2.25, 0), (2.196772355, 0.486509218), (2.039607805, 0.95))
        make_face()
    extrude(amount=CORTAR_EXTRUIR1_DEPTH, mode=Mode.SUBTRACT)


solid = part.part
